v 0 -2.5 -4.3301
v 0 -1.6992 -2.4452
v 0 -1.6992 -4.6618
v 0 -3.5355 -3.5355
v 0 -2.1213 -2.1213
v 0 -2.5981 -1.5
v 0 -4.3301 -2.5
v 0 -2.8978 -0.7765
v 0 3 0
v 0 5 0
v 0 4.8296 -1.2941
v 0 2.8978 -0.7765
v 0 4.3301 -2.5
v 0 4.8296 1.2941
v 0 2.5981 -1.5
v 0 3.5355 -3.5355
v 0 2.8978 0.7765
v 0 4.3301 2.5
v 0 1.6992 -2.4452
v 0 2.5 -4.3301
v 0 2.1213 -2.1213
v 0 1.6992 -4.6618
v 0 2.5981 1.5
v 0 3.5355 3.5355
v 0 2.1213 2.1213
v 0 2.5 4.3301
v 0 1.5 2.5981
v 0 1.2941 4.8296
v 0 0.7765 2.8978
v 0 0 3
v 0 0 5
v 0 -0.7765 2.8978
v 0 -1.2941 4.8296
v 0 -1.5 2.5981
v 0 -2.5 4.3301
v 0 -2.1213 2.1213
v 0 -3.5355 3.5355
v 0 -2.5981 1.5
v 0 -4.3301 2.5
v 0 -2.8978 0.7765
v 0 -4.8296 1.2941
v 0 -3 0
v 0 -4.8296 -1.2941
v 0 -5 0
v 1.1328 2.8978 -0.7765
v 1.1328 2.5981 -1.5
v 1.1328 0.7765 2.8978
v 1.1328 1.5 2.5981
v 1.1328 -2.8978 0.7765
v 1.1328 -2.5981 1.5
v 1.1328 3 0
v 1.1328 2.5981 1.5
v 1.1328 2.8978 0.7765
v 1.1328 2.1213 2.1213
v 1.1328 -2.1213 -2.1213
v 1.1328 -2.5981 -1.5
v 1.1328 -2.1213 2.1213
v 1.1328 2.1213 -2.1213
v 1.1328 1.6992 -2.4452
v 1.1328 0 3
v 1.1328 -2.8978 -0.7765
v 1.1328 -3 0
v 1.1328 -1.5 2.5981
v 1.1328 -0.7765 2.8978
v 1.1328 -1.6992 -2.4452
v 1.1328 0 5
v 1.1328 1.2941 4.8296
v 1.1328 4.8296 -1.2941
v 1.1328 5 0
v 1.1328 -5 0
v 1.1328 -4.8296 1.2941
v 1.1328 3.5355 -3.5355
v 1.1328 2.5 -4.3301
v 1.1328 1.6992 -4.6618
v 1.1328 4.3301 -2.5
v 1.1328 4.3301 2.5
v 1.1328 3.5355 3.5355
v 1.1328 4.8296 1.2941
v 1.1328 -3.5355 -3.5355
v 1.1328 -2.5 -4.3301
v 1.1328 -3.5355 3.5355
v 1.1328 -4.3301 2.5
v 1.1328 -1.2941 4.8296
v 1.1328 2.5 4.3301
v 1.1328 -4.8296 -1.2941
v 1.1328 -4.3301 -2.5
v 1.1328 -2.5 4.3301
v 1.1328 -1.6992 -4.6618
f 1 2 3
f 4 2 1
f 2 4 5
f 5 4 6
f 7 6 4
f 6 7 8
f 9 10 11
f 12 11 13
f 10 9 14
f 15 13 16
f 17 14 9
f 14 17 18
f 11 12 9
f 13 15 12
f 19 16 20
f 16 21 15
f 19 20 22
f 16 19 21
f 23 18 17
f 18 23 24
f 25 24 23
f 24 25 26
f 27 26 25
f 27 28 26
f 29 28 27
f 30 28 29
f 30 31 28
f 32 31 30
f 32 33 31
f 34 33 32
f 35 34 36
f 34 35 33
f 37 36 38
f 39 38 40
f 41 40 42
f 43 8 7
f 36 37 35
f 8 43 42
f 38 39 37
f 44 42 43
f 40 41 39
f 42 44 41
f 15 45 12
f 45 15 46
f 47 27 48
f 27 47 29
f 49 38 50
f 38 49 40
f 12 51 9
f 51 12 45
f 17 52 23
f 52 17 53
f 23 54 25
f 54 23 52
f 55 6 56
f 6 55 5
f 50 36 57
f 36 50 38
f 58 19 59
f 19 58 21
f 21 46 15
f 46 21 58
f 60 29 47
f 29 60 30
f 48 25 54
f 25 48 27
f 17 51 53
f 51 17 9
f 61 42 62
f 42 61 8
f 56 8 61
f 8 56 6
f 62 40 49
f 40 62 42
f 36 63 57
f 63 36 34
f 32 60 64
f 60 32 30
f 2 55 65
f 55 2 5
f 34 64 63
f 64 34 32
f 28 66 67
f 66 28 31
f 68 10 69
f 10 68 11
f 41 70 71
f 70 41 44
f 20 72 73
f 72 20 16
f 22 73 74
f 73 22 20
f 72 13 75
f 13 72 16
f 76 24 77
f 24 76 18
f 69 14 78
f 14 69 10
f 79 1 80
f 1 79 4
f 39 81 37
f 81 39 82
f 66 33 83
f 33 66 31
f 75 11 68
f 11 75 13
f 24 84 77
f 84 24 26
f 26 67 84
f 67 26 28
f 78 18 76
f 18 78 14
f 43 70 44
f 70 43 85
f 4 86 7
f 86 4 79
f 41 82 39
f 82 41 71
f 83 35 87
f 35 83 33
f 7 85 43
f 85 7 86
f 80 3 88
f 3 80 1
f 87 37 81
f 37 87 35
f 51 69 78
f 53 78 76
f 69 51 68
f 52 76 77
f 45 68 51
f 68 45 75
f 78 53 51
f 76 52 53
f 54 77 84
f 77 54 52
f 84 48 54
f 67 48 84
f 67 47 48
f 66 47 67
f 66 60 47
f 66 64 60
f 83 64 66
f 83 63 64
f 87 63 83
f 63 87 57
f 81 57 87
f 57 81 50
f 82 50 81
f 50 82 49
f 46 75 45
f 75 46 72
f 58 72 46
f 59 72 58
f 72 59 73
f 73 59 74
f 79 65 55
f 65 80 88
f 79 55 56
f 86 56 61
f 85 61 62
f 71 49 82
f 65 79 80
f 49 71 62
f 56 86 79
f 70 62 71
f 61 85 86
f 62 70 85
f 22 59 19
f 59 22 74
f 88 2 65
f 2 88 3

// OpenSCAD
// file: ../build_environments.scad
// build_environments.scad: modules to build level sections
//

module pool(diameter=10.0, wall_height=2.0, step_width=3.0, connections=[])
{
    difference() {
        union() {
        difference() {
            cylinder(h=0.5,r1=diameter+step_width,r2=diameter+step_width,$fn=48);
            translate([0,0,-0.1])
                cylinder(h=0.7,r1=diameter,r2=diameter,$fn=48);
        }
        difference() {
            cylinder(h=wall_height,r1=diameter+step_width+1.0,r2=diameter+step_width+1.0,$fn=48);
            translate([0,0,-0.1])
                cylinder(h=wall_height+0.2,r1=diameter+step_width,r2=diameter+step_width,$fn=48);
        }
        }
    
        for (c = connections)
        {
            rotate([0,90,0]) {
                angle = atan2(c[1],c[0]);
                rotate([-angle,0,0]) {
                    cylinder(h=diameter+5.0,r1=c[2],r2=c[2],$fn=48);
                }
            }
        }
    }
}

module straight(length=10.0, width=2.0, dy1=0.0, dy2=0.0, dz=0.0)
{
    dims = [0, 0, 0, 0, 0, (dz/length)];
    matrix = [
        [ 1, dims[0], dims[1], 0 ],
        [ dims[2], 1, dims[4], 0 ],
        [ dims[5], dims[3], 1, 0 ],
        [ 0, 0, 0, 1 ]
    ];
    multmatrix(matrix)
    difference() {
        translate([dy1,0,0])
        union() {
            rotate([0,90,0]) {
                difference() {
                    cylinder(h=(length-dy1-dy2),r1=width+1.0,r2=width+1.0,$fn=24);
                    translate([0,0,-0.1])
                        cylinder(h=(length-dy1-dy2+0.2),r1=width,r2=width,$fn=24);
                }
                difference() {
                    cylinder(h=1.0,r1=width+2.0,r2=width+2.0,$fn=24);
                    translate([0,0,-0.1])
                        cylinder(h=1.2,r1=width,r2=width,$fn=24);
                }
                translate([0,0,(length-dy1-dy2)-1.0]) {
                    difference() {
                        cylinder(h=1.0,r1=width+2.0,r2=width+2.0,$fn=24);
                        translate([0,0,-0.1])
                            cylinder(h=1.2,r1=width,r2=width,$fn=24);
                    }
                }
            }
        }
        translate([0,0,-(2*width+4.0)/2])
            cube([3*length,3*length,2*width+4.0],center=true);
    }
}

module curve(p0=[0,0], center=[0,0], dir=1, angle=0.0, width=2.0)
{
    radius = sqrt((p0[0]-center[0])*(p0[0]-center[0]) + (p0[1]-center[1])*(p0[1]-center[1]));
    if (dir == 0) {
        difference() {
            rotate([0,0,-90])
            difference() {
                rotate_extrude(angle = angle, convexity = 10, $fn=32)
                    translate([radius, 0, 0])
                        circle(r = width+1.0,$fn=24);
                rotate([0,0,-1.0])
                    rotate_extrude(angle = angle+2.0, convexity = 10, $fn=32)
                        translate([radius, 0, 0])
                            circle(r = width,$fn=24);
            }
            translate([0,0,-(2*width+4.0)/2])
                cube([5*radius,5*radius,2*width+4.0],center=true);
        }
    }
    else {
        difference() {
            rotate([0,0,90])
            difference() {
                rotate_extrude(angle = -angle, convexity = 10, $fn=32)
                    translate([radius, 0, 0])
                        circle(r = width+1.0,$fn=24);
                rotate([0,0,1.0])
                    rotate_extrude(angle = -angle-2.0, convexity = 10, $fn=32)
                        translate([radius, 0, 0])
                            circle(r = width,$fn=24);
            }
            translate([0,0,-(2*width+4.0)/2])
                cube([5*radius,5*radius,2*width+4.0],center=true);
        }
    }

}

// test pool
//pool(diameter=12.0000, wall_height=3.0000, step_width=3.0000, connections=[[0.0000,-26.0000,2.0000], [23.6074,0.0000,2.0000]]);

// test straight, slope
//straight(length=26.0000, width=2.0000, dy1=11.8322, dy2=6.7082, dz=0.0000);
//straight(length=29.1549, width=12.0000, dy1=0.0000, dy2=0.0000, dz=-15.0000);

// test curve
//curve(p0=[23.6074, 0.0000], center=[23.6074, 5.0000], dir=0, angle=60.1011, width=2.0000);
//curve(p0=[33.6426, 12.4219], center=[37.9771, 9.9295], dir=1, angle=120.4627, width=2.0000);
// main file
use <../build_environments.scad>;
straight(length=1.1328, width=3.0000, dy1=0.0000, dy2=0.0000, dz=0.0000);
